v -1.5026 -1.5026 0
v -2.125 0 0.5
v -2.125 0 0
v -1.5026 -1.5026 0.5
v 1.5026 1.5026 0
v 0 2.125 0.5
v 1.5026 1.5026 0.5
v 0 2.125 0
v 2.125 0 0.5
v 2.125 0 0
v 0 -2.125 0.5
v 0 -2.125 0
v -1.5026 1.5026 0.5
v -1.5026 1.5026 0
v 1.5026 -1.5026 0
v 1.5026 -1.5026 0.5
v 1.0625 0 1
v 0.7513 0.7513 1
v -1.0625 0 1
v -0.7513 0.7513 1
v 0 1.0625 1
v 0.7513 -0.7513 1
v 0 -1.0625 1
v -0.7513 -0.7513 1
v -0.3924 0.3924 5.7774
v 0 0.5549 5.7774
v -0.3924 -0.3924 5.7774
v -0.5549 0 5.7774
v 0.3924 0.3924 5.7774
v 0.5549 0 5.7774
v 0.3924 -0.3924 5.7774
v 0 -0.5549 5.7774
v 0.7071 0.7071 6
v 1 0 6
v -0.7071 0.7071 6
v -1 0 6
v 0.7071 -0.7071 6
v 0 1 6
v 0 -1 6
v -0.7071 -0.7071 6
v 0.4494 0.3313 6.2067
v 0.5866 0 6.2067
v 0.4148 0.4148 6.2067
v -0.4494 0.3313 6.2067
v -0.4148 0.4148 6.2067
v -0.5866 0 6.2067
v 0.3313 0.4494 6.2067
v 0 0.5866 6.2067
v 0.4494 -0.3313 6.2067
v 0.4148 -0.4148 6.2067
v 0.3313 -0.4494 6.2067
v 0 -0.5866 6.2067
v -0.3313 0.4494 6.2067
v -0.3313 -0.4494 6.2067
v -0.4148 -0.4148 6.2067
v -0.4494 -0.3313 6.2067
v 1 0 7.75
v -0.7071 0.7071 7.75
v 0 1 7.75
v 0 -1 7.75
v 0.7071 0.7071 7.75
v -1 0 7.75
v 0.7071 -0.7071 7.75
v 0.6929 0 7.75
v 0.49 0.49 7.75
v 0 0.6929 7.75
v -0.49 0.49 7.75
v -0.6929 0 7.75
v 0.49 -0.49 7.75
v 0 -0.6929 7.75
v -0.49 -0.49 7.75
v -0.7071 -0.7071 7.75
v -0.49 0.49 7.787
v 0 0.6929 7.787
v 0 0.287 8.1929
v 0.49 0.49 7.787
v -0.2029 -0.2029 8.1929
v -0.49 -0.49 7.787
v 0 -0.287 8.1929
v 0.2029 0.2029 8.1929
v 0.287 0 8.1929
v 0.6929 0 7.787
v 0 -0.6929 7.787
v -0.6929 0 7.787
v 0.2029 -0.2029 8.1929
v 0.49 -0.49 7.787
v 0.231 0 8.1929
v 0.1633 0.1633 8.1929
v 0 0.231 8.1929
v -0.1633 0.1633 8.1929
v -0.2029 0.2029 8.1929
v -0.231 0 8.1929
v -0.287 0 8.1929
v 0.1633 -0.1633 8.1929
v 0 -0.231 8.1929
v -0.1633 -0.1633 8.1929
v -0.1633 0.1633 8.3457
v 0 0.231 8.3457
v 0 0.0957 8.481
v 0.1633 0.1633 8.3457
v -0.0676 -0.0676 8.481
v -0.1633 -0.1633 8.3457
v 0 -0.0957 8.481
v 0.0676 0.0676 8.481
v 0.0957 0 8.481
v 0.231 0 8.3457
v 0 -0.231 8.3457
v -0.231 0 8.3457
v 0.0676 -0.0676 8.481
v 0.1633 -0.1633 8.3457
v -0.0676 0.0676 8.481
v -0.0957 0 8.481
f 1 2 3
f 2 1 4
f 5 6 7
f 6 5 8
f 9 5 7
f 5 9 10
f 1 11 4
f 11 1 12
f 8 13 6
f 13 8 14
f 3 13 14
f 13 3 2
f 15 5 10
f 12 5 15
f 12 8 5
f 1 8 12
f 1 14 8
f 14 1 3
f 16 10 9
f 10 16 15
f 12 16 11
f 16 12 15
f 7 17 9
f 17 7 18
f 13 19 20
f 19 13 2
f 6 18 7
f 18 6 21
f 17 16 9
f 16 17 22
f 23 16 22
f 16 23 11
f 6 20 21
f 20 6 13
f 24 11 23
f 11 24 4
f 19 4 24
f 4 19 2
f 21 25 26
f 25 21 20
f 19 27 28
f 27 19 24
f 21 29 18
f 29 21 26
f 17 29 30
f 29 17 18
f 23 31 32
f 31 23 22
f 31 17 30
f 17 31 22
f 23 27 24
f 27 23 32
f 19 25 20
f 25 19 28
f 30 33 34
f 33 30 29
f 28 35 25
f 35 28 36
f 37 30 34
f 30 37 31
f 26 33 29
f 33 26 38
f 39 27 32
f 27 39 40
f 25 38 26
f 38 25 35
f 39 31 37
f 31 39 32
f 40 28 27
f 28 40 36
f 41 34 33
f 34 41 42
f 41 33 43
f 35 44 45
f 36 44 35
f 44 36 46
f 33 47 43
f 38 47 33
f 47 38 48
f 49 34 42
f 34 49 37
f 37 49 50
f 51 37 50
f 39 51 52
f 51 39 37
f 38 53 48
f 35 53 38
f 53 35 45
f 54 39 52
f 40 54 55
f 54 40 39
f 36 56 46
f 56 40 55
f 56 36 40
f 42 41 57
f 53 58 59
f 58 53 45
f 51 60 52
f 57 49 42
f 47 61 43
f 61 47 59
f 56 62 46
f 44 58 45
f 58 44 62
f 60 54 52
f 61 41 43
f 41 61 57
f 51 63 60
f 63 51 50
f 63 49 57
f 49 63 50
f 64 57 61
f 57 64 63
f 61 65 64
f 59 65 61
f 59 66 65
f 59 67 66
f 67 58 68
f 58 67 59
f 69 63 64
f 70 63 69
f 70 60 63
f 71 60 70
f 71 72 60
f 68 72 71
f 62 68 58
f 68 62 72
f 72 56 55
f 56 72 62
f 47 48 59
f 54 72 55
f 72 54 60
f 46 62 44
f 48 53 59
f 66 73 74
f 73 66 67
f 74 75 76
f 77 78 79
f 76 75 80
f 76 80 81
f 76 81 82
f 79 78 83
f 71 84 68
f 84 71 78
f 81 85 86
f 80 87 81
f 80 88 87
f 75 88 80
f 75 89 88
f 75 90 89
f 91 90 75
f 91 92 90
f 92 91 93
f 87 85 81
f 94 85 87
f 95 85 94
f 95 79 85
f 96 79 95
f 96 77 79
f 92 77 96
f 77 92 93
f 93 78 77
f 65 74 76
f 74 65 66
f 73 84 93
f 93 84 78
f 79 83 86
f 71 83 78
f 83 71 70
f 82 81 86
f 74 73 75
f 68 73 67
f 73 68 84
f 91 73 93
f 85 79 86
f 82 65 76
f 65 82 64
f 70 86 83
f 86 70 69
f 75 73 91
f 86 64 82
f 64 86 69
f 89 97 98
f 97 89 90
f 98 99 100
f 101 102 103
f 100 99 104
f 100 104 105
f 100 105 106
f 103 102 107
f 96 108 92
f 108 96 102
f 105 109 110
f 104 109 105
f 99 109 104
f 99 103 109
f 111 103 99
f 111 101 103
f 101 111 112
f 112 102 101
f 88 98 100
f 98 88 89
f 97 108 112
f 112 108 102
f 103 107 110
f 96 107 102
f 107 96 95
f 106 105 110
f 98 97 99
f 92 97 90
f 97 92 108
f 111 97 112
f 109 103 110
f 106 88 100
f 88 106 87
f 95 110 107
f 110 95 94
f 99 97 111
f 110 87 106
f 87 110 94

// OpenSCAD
// file: ../lib/bezier.scad
/*
This file is used in models found in this repository.
Copyright (C) 2024 Christian Hodgden

This program is free software: you can redistribute it and/or modify it under the terms of the GNU Lesser General Public License as published by the Free Software Foundation, either version 3 of the License, or (at your option) any later version.

This program is distributed in the hope that it will be useful, but WITHOUT ANY WARRANTY; without even the implied warranty of MERCHANTABILITY or FITNESS FOR A PARTICULAR PURPOSE. See the GNU General Public License for more details.

You should have received a copy of the GNU Lesser General Public License along with this program. If not, see <https://www.gnu.org/licenses/>.
*/

function de_casteljau(points, t) = 
	len(points) == 1 ?
	points[0] : 
	de_casteljau(
		[for (i = [0:len(points)-2]) (1 - t) * points[i] + t * points[i + 1]], 
		t
	) ;

function bezier_curve(points, $fn=$fn) = 
	[for (i = [0:$fn]) de_casteljau(points, i / $fn)] ;
// main file
// FIDE Standards have some flexibility
// https://www.fide.com/FIDE/handbook/Standards_of_Chess_Equipment_and_tournament_venue.pdf
// FIDE Handbook C.02.2.2 Height,weight,proportions
// 	- King – 9.5 cm, 
// 	- Queen – 8.5 cm, 
// 	- Bishop – 7 cm, 
// 	- Knight – 6 cm, 
// 	- Rook – 5.5 cm and 
// 	- Pawn – 5 cm. 
// 	- The diameter of the piece's base should measure 40- 50% of its height.
// 	- These dimensions may differ up to 10% from the above recommendation,
// 		- but the order (e.g. King is higher than Queen etc.) must be kept.
// We are going to transgress C.02.2.3
// FIDE Handbook C.02.3.2 Size of the square and the board
// 	- The side of the square should measure 5 to 6 cm. 
// 	- Referring to 2.2 the side of a square should be at least twice the diameter of a pawn’s base (it means four paws on one square).

use <../lib/bezier.scad>;

$fn = 8;
total_height = 8.5;
base_diameter = total_height / 2;
base_radius = base_diameter / 2;
base_height = 1;
stem_radius = base_radius / 4;
stem_base_radius = base_radius / 2;
head_radius = 1;
head_height = 1.75;
crown_height = 0.75;
stem_height = total_height - base_height - head_height - crown_height;

// collar_check enables collar
collar_check = 1;
collar_radius = head_radius * collar_check;
collar_height = 1 * collar_check;

// Base
cylinder(base_height/2, base_radius, base_radius);
translate([0, 0, base_height/2]) 
	cylinder(base_height, base_radius, 0);

// Stem
translate([0, 0, base_height])
	cylinder(stem_height, stem_base_radius, stem_radius);

// Collar
translate([0, 0, stem_height + base_height - (collar_height/2)])
	cylinder(collar_height/2, 0, collar_radius);
translate([0, 0, stem_height + base_height])
	cylinder(collar_height/2, collar_radius, 0);

// Head
translate([0, 0, total_height - head_height - crown_height])
	cylinder(head_height, stem_radius, head_radius);

// Cap
translate([0, 0, total_height - head_radius])
	sphere(head_radius * 0.75);

// Point
translate([0, 0, 8.25])
	sphere(0.25);
